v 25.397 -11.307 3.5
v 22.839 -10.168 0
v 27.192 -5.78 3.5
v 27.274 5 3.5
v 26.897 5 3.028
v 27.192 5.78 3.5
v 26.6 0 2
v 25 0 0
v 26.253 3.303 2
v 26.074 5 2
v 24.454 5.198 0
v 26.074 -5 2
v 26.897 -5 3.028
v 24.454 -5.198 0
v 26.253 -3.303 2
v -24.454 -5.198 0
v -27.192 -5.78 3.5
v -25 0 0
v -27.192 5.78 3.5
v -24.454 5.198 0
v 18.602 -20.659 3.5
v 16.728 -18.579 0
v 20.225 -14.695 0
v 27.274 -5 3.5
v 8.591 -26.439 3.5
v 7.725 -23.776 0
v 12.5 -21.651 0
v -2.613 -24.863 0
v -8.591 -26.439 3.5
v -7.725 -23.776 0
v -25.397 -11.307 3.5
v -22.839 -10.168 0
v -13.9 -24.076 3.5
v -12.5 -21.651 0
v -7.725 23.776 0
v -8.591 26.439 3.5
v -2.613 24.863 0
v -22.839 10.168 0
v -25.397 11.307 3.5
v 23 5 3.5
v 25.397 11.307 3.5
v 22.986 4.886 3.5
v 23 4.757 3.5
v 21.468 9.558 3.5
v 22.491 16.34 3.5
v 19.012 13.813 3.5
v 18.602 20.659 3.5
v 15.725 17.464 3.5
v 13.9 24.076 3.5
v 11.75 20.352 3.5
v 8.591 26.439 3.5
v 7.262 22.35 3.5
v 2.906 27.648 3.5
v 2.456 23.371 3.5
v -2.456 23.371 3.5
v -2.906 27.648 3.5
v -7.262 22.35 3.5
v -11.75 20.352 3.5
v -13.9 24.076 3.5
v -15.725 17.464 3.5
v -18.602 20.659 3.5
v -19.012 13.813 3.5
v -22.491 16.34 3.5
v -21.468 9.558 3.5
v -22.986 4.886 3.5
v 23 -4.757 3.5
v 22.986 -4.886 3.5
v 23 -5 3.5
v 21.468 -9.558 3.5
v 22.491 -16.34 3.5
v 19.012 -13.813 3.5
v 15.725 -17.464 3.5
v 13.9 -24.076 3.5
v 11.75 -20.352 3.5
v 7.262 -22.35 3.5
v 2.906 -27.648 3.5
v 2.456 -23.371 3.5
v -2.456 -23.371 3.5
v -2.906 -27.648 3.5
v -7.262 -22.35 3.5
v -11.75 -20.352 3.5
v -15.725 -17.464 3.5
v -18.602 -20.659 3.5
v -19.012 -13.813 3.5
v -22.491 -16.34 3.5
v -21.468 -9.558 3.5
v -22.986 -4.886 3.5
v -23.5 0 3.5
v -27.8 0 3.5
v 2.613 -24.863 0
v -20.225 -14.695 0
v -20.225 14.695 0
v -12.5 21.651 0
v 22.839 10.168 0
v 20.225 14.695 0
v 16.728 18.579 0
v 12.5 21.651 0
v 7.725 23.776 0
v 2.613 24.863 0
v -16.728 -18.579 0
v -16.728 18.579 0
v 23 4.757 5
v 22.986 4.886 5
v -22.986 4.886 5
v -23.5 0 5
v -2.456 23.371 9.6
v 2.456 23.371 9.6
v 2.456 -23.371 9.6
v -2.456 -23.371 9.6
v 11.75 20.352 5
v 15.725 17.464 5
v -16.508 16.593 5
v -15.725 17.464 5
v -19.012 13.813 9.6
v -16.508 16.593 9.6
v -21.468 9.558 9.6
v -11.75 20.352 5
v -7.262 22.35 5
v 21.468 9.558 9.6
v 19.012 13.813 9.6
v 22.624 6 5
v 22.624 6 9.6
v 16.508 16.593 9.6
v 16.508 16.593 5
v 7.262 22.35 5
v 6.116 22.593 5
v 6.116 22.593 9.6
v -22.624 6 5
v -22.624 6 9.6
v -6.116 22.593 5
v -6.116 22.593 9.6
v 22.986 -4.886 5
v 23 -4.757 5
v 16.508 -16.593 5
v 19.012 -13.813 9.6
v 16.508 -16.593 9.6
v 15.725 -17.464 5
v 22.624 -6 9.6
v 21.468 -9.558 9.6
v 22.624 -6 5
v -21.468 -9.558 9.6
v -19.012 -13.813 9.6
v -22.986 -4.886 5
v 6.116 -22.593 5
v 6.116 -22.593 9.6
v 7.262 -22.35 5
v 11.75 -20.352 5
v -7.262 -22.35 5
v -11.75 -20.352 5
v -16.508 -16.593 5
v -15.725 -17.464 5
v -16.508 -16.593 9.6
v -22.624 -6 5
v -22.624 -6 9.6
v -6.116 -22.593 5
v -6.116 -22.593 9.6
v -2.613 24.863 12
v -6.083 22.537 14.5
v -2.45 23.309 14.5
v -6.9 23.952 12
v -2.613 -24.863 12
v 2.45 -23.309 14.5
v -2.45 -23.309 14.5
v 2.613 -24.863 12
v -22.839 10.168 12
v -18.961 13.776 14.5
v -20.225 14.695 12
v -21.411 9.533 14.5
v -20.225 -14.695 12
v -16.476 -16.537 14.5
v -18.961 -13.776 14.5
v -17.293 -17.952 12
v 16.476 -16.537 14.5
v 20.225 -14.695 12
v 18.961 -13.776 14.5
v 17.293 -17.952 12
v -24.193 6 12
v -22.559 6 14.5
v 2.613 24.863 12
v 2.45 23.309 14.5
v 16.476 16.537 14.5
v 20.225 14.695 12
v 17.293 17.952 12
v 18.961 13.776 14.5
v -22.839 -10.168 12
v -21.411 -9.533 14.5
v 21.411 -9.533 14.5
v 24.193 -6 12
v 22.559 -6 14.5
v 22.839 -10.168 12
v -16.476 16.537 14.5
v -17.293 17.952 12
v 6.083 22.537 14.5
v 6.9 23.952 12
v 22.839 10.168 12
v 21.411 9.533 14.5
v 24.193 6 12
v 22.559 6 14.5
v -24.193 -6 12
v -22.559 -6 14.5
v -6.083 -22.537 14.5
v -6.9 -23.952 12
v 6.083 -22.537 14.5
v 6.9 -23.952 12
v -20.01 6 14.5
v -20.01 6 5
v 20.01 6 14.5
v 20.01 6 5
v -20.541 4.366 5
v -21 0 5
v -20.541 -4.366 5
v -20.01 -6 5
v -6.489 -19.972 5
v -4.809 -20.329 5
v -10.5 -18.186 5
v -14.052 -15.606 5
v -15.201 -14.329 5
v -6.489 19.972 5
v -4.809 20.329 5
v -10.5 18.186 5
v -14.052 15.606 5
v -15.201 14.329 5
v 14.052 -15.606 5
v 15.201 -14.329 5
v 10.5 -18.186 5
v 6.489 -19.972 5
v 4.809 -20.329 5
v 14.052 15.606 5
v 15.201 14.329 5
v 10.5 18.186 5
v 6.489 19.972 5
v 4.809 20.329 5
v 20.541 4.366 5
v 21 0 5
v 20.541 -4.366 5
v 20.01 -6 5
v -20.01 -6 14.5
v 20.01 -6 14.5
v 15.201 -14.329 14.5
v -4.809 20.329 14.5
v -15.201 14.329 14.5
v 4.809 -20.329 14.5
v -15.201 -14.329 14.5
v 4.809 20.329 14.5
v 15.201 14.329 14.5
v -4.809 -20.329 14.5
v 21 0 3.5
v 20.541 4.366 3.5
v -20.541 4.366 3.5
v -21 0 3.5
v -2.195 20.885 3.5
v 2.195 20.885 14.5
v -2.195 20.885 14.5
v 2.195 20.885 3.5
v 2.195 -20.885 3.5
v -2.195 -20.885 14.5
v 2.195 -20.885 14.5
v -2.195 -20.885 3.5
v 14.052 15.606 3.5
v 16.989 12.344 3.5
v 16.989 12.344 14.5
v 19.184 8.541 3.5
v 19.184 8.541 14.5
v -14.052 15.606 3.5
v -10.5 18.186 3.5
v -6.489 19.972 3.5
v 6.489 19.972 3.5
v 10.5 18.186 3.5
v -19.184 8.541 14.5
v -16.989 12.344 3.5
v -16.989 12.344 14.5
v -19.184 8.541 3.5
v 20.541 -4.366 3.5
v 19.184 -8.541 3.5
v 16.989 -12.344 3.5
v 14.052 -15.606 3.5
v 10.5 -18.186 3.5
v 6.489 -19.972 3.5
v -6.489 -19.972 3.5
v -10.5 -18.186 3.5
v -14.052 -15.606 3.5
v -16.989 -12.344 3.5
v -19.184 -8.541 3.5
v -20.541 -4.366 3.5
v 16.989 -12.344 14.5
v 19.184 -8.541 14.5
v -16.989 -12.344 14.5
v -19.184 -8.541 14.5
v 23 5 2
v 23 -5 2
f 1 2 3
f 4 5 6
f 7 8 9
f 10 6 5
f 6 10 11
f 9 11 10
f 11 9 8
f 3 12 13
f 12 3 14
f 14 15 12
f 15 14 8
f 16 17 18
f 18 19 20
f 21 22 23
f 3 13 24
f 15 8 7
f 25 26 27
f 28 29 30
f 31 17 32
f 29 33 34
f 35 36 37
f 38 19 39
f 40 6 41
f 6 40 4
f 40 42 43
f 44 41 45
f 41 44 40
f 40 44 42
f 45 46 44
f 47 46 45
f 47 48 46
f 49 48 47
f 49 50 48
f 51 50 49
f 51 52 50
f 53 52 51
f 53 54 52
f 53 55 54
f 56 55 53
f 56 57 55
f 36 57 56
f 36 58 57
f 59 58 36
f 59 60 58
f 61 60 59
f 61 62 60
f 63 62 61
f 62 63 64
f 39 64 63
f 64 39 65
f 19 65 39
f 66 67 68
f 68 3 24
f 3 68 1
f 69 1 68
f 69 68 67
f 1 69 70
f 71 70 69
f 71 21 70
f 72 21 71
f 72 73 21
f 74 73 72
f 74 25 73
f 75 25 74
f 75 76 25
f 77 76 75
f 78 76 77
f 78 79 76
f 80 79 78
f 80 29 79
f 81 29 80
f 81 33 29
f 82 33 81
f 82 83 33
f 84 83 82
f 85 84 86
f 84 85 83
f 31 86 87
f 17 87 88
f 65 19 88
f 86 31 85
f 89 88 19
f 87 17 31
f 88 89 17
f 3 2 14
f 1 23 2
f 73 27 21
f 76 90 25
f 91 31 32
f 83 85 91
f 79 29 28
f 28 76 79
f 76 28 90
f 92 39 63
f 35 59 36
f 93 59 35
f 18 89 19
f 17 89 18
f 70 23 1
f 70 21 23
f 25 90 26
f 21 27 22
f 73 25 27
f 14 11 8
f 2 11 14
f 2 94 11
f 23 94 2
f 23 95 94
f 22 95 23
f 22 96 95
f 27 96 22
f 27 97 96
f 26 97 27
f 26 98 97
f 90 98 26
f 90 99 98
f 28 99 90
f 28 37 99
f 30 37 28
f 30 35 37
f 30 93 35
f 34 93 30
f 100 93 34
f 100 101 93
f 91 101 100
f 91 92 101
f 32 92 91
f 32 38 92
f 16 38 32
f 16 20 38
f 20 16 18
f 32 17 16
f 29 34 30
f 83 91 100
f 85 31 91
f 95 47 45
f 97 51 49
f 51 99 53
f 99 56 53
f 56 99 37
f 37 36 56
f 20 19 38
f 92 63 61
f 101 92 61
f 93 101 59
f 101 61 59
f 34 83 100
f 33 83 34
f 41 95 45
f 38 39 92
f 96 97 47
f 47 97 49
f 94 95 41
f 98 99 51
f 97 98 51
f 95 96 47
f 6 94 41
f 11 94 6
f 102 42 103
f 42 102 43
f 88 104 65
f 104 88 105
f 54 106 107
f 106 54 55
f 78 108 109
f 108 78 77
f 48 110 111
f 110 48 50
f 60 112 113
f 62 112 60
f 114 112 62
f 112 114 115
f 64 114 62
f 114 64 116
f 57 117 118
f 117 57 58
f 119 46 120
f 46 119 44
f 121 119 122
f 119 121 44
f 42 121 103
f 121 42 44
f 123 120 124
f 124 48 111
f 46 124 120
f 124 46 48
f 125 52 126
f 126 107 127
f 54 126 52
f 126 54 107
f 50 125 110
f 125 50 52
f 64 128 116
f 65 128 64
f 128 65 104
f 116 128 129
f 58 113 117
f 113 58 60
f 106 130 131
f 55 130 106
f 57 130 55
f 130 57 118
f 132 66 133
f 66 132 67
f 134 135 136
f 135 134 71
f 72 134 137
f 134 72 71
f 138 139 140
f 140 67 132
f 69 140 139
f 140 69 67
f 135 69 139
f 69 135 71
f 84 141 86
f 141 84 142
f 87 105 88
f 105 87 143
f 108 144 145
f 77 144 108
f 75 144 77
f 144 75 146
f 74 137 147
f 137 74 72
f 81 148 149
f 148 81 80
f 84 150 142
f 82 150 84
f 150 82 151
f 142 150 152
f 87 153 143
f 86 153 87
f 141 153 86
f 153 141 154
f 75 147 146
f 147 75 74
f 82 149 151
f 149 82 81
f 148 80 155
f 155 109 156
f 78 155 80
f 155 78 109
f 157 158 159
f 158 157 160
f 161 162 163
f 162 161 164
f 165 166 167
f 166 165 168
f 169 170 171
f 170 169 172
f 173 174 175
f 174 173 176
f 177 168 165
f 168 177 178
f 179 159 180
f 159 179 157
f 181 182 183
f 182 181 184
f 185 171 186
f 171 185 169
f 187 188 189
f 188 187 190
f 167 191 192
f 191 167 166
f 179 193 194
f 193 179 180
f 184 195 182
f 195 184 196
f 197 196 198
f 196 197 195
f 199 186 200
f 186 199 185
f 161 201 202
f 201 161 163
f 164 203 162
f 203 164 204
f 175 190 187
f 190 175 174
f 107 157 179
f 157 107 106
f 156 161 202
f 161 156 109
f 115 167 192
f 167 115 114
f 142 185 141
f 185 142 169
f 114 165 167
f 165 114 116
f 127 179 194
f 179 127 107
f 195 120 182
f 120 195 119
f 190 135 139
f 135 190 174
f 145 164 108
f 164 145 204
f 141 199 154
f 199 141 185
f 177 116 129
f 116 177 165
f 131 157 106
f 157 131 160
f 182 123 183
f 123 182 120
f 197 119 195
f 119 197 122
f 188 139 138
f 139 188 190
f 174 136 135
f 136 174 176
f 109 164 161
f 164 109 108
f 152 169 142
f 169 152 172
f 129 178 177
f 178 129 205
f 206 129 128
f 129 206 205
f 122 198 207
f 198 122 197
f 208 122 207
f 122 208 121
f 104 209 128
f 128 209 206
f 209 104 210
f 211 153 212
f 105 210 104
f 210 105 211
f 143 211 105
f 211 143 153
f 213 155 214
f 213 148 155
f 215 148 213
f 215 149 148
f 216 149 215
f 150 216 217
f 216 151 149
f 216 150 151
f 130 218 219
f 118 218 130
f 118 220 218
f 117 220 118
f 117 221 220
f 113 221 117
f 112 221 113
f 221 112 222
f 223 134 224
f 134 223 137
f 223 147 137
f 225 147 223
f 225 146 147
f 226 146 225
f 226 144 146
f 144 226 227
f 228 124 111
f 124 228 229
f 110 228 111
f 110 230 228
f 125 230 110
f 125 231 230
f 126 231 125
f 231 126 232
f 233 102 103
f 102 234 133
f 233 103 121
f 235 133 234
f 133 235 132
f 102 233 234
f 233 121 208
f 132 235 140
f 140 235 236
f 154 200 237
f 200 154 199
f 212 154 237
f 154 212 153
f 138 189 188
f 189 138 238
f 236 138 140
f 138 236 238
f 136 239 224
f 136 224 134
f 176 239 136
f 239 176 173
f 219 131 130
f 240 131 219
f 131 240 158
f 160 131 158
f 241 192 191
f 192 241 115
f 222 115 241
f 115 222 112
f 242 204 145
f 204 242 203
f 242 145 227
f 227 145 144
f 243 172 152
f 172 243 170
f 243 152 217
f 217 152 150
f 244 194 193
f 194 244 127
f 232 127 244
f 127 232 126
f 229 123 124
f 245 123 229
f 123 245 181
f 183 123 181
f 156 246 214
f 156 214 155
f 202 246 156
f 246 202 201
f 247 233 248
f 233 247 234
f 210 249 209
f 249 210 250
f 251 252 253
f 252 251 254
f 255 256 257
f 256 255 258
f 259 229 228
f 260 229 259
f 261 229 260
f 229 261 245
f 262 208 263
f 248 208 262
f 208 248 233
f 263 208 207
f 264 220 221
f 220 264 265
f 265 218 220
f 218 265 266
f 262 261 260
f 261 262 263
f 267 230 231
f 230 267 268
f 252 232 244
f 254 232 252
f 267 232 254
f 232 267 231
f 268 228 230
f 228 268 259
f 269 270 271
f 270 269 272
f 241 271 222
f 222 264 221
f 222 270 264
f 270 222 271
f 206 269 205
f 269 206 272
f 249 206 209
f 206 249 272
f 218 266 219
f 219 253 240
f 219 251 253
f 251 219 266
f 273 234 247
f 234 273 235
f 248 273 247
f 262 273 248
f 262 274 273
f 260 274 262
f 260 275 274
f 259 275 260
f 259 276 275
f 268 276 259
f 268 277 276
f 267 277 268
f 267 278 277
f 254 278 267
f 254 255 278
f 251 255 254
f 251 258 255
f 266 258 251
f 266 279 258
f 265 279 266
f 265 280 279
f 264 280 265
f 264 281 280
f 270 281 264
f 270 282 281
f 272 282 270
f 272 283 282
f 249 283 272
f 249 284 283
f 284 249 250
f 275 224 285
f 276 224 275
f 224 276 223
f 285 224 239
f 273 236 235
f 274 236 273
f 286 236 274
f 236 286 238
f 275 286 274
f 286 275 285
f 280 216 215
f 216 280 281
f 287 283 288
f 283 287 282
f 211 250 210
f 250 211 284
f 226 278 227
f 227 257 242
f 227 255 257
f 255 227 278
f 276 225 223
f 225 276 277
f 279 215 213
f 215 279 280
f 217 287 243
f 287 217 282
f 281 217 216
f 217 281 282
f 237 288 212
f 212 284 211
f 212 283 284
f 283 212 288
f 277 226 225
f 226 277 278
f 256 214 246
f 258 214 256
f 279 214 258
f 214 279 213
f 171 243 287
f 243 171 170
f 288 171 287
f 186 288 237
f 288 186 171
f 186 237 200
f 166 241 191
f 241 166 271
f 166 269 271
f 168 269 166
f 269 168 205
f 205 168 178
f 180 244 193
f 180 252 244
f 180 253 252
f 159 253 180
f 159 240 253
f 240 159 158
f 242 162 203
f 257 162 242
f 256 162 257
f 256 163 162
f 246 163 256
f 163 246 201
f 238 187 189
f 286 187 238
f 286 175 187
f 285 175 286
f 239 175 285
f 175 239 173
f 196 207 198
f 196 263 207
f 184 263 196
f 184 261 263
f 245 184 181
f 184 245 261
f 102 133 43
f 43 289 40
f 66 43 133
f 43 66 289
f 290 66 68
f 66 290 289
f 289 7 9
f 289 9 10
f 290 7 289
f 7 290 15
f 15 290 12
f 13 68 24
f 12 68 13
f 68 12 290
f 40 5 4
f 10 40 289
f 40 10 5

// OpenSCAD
difference() {
    //Basic shape
    union() {
        // Cone, face
        cylinder(d2=55.6, d1=50, h=3.5 );
        // Cylinder, interior clip
        cylinder(d=47.0, h=14.21);
        
        // upper wedge on clip
        translate(v=[0,0,12])
            cylinder(d2=0, d1=50, h=40);
        // lower wedge on clip
        translate(v=[0,0,-28])
            cylinder(d1=0, d2=50, h=40);
    };
    
    // Cut out the interior of interior clip
    translate(v=[0,0,3.5])
        cylinder( d=42, h=100);
    // Slice off top and bottom of the cap
    translate([0,0,-50])
        cube(center=true,[100,100,100]);
    translate([0,0,64.50])
        cube(center=true,[100,100,100]);

    // Cut out 3 Slots using long cubes, rotated three times
    for( i = [0:2]) {
        rotate(a=[0,0,120*i])
            translate([0, 0, 30])
                cube(center=true,[100, 12, 50]);
    };

    //pry point / cut out;
       translate([28, 0, 7])
          cube(center=true,[10, 10, 10]);

    
}
